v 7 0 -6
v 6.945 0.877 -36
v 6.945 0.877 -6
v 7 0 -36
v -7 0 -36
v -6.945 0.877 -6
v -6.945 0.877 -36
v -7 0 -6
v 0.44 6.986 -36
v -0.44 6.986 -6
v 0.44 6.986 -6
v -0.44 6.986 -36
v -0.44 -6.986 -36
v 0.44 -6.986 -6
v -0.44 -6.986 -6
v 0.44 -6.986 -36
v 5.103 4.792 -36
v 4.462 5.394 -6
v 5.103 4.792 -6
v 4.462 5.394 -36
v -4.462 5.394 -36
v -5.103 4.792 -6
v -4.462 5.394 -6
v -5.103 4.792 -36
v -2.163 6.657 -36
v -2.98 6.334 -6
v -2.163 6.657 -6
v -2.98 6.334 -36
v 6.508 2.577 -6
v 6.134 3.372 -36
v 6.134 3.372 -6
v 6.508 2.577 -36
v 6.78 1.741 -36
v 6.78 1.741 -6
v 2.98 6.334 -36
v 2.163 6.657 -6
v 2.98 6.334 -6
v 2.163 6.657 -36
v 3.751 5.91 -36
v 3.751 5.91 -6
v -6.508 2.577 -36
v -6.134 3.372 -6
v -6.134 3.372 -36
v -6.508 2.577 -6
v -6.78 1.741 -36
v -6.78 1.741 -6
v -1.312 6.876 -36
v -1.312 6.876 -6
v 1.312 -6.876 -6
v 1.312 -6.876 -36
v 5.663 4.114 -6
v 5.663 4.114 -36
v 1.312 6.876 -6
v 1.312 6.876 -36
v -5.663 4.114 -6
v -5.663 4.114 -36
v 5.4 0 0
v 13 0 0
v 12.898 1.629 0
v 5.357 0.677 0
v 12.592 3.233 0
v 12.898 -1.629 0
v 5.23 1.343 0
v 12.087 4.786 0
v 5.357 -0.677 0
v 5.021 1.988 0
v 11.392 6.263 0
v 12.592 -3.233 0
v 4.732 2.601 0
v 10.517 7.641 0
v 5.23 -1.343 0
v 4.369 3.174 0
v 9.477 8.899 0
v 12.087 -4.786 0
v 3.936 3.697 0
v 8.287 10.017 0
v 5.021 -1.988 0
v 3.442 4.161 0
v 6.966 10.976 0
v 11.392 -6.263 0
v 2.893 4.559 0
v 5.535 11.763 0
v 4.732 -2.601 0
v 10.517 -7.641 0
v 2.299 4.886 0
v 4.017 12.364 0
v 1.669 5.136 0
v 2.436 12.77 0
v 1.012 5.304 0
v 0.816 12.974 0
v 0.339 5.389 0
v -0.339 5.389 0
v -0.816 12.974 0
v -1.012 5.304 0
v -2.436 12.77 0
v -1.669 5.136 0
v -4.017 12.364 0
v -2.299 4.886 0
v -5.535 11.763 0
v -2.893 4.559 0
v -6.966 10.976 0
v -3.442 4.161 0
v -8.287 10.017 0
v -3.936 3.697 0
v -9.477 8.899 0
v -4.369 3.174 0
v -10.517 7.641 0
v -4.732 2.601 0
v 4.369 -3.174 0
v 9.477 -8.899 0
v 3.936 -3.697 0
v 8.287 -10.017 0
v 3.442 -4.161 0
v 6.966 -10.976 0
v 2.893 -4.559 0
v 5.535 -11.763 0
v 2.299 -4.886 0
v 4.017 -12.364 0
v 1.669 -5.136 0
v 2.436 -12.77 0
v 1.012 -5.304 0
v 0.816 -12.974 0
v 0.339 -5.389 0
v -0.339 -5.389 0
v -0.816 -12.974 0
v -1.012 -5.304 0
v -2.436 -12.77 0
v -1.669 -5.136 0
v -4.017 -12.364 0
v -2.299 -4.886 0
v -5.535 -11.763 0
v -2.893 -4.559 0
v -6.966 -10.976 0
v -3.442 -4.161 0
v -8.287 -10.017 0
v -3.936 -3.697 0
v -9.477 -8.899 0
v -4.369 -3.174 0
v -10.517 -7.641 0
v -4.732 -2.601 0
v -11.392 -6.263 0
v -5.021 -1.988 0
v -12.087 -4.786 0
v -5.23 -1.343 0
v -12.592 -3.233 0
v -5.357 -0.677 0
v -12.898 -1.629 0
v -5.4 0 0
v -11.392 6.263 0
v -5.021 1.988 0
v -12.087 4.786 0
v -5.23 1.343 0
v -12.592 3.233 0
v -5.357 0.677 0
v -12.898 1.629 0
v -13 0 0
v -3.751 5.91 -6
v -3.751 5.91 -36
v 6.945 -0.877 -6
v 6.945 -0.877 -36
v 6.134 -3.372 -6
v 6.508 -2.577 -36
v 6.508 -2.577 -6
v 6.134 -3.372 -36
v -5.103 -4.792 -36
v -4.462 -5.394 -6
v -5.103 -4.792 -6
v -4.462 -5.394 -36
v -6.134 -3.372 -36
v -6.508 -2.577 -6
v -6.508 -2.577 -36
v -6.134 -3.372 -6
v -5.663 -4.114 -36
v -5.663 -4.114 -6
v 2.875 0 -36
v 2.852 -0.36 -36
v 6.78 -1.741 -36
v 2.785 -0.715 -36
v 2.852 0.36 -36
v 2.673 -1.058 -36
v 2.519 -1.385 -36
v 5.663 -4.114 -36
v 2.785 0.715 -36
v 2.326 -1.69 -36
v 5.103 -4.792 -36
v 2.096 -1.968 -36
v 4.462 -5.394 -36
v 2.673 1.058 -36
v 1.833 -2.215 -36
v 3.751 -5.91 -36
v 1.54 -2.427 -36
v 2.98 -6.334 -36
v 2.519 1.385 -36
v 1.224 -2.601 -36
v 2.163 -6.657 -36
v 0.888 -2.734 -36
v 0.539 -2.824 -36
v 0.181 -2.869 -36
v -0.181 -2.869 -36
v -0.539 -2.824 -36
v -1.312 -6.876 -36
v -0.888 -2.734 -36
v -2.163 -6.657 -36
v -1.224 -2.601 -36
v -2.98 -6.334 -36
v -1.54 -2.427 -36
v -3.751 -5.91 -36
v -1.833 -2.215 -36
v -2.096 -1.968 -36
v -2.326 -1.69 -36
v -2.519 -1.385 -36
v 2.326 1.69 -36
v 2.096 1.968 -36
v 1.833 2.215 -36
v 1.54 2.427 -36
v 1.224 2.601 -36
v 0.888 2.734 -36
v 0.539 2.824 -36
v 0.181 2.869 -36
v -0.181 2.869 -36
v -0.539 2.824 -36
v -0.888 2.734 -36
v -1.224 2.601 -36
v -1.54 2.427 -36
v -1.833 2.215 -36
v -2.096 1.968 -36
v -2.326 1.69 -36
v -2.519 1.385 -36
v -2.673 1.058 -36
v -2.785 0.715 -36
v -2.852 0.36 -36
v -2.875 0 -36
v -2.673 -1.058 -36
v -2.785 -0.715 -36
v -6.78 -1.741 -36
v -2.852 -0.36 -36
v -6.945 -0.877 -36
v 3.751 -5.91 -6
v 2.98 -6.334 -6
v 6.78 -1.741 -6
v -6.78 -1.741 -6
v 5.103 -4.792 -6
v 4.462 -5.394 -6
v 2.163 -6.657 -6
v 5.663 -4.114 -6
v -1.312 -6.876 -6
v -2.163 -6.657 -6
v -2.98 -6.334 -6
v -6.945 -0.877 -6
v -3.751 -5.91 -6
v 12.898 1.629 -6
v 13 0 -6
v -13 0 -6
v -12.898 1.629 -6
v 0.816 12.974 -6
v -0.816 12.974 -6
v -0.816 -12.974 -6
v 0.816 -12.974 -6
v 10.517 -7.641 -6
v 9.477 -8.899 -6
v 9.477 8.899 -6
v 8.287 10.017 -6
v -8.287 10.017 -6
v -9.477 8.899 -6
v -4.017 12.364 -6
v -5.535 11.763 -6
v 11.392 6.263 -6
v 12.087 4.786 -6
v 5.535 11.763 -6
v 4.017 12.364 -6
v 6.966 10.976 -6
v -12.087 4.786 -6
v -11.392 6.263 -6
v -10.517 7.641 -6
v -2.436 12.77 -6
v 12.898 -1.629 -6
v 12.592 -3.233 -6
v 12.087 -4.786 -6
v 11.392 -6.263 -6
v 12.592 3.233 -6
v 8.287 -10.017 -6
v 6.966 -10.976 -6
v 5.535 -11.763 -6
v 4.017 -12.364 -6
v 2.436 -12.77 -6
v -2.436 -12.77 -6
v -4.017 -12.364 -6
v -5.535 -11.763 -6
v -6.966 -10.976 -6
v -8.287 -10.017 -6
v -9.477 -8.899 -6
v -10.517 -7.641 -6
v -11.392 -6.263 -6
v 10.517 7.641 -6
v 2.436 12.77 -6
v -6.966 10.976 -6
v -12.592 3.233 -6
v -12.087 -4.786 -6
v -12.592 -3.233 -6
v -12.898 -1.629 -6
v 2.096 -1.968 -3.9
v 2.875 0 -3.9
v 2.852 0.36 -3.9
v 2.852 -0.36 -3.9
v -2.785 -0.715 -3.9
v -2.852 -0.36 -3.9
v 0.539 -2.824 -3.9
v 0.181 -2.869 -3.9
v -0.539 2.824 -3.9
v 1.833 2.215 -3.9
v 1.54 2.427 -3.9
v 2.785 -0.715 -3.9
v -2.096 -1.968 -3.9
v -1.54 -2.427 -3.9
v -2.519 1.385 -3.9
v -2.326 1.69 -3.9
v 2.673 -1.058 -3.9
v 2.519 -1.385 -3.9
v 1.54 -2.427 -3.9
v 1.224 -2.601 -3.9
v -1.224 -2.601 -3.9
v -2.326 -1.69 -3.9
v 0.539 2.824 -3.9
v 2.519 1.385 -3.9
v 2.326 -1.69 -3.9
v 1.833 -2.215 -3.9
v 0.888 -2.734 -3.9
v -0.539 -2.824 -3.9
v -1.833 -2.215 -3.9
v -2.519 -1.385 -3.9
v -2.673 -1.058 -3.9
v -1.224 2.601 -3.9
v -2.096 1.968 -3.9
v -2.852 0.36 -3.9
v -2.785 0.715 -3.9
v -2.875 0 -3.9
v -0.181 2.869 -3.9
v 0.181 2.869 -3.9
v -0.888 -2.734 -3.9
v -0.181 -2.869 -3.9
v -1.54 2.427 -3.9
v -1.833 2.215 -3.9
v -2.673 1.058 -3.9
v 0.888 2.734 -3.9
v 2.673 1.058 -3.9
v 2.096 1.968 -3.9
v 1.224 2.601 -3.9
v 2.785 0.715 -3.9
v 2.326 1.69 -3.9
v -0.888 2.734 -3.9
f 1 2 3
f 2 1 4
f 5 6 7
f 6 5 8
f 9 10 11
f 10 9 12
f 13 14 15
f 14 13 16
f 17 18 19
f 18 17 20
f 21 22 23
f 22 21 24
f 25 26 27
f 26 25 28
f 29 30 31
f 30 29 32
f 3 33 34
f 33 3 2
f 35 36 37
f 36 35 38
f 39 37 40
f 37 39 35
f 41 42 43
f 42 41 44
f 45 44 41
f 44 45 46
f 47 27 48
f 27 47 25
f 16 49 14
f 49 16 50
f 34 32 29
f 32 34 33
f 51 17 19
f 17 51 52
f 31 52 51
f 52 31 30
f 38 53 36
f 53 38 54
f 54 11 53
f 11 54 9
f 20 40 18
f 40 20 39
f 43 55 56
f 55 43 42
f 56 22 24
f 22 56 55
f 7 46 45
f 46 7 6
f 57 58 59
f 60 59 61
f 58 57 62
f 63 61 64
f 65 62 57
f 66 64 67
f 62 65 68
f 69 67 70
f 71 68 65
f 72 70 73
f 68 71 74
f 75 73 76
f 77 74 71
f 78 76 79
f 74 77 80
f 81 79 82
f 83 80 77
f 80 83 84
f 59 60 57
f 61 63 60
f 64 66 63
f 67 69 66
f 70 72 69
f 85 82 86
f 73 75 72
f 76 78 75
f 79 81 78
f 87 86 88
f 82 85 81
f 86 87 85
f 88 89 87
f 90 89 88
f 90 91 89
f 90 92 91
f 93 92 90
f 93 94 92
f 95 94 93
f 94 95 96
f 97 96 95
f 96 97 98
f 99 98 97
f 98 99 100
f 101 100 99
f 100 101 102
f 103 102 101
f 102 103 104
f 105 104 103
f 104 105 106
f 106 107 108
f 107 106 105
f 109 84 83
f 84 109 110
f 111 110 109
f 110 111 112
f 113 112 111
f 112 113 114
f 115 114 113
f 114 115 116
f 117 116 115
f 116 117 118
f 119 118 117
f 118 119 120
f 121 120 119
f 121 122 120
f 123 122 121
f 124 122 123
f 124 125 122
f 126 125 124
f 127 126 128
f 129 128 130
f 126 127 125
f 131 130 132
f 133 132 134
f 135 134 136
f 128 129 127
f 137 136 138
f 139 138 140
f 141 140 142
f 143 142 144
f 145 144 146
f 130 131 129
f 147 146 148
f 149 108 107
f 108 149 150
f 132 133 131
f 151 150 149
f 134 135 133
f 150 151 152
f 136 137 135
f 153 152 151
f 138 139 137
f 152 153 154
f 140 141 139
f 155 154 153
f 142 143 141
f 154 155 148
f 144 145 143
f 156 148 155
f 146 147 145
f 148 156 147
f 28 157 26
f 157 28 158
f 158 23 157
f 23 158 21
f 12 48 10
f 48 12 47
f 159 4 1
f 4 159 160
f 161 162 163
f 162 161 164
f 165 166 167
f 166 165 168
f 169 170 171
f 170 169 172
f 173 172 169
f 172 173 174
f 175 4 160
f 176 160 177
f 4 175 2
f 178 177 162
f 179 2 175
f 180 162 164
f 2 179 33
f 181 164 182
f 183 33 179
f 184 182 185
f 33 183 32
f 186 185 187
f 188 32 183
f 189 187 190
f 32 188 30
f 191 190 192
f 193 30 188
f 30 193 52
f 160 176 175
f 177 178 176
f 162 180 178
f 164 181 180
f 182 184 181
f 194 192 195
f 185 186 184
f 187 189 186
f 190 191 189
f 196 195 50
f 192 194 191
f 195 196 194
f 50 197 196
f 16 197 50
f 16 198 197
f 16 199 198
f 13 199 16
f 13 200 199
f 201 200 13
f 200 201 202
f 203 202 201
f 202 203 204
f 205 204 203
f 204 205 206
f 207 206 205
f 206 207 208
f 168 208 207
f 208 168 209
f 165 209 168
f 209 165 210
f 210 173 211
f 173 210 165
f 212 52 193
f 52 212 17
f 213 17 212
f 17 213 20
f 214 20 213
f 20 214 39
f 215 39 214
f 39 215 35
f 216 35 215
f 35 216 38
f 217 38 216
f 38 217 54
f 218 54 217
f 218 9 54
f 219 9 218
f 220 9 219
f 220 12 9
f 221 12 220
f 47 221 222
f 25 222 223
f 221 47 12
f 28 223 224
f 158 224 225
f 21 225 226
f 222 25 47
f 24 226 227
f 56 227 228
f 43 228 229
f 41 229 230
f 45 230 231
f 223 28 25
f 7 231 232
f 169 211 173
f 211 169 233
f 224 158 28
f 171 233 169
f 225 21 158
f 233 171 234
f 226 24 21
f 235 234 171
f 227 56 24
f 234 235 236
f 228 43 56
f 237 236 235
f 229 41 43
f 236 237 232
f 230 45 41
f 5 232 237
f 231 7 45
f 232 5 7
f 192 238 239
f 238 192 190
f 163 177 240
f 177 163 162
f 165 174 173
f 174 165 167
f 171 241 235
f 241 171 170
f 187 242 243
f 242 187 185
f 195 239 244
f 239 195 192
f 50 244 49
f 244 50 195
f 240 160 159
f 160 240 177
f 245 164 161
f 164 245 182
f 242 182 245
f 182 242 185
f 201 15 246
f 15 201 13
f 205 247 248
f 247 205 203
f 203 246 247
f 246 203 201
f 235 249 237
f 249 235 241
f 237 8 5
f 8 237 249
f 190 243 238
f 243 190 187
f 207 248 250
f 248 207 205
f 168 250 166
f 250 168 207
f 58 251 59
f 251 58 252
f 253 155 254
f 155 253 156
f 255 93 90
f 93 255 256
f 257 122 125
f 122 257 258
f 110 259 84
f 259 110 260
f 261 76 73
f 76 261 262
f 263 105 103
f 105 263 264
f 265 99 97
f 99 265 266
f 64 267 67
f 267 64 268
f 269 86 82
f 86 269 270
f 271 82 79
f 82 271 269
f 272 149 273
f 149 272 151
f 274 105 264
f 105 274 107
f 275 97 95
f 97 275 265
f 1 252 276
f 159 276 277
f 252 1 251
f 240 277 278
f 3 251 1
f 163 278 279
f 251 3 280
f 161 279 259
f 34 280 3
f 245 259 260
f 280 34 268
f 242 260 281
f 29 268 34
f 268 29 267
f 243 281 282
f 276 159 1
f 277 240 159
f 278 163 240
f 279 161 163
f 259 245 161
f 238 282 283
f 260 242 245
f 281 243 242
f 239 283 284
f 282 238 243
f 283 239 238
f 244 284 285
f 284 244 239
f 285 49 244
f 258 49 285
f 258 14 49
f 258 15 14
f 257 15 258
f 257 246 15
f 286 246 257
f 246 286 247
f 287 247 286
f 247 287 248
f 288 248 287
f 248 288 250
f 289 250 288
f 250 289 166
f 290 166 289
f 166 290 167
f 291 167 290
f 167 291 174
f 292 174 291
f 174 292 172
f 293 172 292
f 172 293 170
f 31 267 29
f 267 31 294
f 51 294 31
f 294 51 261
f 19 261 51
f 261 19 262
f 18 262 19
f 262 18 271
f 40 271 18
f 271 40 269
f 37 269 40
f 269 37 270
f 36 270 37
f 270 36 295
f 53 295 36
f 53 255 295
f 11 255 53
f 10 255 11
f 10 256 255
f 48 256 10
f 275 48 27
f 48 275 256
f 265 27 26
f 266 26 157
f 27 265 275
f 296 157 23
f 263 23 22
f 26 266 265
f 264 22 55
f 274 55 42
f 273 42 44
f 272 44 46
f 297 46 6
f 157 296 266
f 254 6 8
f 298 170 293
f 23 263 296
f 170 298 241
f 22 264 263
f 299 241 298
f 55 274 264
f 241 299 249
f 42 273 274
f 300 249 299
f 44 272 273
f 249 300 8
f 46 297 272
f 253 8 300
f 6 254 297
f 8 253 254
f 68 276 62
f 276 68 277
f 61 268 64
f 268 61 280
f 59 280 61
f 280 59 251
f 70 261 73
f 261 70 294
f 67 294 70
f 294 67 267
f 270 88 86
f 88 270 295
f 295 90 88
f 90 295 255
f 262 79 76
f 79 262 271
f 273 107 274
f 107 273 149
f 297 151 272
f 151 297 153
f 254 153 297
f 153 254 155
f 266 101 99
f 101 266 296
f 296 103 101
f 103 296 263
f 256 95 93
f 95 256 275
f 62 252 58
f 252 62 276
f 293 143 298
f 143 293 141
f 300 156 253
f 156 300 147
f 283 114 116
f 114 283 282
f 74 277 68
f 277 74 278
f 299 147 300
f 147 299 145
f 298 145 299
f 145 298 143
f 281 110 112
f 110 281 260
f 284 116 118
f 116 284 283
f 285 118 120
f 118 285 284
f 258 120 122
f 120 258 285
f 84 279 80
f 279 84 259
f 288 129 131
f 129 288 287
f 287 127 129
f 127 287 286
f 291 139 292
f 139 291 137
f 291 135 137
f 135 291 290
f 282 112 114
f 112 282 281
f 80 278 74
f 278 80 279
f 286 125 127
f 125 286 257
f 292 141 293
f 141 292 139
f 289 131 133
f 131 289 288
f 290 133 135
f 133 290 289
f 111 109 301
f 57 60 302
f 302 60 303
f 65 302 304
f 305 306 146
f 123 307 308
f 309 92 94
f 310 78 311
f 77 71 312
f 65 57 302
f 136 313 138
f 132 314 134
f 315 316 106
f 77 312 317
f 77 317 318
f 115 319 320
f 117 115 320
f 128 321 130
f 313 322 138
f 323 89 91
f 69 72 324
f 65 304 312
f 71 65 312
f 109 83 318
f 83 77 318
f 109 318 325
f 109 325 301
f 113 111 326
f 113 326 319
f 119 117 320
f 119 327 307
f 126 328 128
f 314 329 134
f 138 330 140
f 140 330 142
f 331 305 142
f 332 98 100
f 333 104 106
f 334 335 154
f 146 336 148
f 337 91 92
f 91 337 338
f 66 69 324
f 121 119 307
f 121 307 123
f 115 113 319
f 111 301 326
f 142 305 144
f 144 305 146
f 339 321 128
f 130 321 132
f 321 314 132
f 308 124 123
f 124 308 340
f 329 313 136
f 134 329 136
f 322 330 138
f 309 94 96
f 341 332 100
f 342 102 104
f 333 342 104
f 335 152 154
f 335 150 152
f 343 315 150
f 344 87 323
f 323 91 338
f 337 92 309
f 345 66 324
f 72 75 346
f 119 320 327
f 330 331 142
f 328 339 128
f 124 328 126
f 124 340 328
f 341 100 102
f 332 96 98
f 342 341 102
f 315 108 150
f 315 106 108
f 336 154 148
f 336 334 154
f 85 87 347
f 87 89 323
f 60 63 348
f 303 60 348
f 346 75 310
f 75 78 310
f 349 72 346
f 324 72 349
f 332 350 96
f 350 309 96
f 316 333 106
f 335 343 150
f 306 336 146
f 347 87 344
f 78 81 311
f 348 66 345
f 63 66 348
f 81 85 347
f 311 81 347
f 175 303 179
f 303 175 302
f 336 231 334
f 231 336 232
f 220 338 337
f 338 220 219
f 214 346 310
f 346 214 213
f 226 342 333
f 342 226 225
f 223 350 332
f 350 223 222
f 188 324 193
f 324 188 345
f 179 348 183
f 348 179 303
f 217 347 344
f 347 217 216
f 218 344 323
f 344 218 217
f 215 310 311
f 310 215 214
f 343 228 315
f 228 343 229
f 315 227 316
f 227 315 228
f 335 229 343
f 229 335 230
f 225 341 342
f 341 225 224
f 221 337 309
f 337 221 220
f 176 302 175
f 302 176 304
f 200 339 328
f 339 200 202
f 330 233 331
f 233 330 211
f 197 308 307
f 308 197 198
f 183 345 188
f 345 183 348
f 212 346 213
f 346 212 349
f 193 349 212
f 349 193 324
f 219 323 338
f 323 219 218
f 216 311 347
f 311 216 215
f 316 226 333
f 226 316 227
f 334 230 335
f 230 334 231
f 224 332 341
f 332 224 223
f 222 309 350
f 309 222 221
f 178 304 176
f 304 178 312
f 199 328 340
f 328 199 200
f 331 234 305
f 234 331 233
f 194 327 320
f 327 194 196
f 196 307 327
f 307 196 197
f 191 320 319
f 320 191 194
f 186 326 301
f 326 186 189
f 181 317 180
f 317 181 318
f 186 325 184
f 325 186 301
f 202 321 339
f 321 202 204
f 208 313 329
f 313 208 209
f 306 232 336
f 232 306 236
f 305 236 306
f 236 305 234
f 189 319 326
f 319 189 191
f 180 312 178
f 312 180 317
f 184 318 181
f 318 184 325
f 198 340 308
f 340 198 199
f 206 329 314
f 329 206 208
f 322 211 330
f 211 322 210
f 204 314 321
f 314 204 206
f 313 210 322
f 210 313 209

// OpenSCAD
$fn = 50;


difference() {
	union() {
		translate(v = [0, 0, -36.0000000000]) {
			cylinder(h = 36, r = 7.0000000000);
		}
		translate(v = [0, 0, -6.0000000000]) {
			cylinder(h = 6, r = 13.0000000000);
		}
	}
	union() {
		translate(v = [0, 0, 0]) {
			rotate(a = [0, 0, 0]) {
				difference() {
					union() {
						#translate(v = [0, 0, -36.0000000000]) {
							cylinder(h = 36, r = 2.6000000000);
						}
						#translate(v = [0, 0, -3.9000000000]) {
							cylinder(h = 3.9000000000, r = 7.0000000000, r1 = 2.8750000000, r2 = 5.4000000000);
						}
						#translate(v = [0, 0, -36.0000000000]) {
							cylinder(h = 36, r = 2.8750000000);
						}
						#translate(v = [0, 0, -36.0000000000]) {
							cylinder(h = 36, r = 2.6000000000);
						}
					}
					union();
				}
			}
		}
	}
}
